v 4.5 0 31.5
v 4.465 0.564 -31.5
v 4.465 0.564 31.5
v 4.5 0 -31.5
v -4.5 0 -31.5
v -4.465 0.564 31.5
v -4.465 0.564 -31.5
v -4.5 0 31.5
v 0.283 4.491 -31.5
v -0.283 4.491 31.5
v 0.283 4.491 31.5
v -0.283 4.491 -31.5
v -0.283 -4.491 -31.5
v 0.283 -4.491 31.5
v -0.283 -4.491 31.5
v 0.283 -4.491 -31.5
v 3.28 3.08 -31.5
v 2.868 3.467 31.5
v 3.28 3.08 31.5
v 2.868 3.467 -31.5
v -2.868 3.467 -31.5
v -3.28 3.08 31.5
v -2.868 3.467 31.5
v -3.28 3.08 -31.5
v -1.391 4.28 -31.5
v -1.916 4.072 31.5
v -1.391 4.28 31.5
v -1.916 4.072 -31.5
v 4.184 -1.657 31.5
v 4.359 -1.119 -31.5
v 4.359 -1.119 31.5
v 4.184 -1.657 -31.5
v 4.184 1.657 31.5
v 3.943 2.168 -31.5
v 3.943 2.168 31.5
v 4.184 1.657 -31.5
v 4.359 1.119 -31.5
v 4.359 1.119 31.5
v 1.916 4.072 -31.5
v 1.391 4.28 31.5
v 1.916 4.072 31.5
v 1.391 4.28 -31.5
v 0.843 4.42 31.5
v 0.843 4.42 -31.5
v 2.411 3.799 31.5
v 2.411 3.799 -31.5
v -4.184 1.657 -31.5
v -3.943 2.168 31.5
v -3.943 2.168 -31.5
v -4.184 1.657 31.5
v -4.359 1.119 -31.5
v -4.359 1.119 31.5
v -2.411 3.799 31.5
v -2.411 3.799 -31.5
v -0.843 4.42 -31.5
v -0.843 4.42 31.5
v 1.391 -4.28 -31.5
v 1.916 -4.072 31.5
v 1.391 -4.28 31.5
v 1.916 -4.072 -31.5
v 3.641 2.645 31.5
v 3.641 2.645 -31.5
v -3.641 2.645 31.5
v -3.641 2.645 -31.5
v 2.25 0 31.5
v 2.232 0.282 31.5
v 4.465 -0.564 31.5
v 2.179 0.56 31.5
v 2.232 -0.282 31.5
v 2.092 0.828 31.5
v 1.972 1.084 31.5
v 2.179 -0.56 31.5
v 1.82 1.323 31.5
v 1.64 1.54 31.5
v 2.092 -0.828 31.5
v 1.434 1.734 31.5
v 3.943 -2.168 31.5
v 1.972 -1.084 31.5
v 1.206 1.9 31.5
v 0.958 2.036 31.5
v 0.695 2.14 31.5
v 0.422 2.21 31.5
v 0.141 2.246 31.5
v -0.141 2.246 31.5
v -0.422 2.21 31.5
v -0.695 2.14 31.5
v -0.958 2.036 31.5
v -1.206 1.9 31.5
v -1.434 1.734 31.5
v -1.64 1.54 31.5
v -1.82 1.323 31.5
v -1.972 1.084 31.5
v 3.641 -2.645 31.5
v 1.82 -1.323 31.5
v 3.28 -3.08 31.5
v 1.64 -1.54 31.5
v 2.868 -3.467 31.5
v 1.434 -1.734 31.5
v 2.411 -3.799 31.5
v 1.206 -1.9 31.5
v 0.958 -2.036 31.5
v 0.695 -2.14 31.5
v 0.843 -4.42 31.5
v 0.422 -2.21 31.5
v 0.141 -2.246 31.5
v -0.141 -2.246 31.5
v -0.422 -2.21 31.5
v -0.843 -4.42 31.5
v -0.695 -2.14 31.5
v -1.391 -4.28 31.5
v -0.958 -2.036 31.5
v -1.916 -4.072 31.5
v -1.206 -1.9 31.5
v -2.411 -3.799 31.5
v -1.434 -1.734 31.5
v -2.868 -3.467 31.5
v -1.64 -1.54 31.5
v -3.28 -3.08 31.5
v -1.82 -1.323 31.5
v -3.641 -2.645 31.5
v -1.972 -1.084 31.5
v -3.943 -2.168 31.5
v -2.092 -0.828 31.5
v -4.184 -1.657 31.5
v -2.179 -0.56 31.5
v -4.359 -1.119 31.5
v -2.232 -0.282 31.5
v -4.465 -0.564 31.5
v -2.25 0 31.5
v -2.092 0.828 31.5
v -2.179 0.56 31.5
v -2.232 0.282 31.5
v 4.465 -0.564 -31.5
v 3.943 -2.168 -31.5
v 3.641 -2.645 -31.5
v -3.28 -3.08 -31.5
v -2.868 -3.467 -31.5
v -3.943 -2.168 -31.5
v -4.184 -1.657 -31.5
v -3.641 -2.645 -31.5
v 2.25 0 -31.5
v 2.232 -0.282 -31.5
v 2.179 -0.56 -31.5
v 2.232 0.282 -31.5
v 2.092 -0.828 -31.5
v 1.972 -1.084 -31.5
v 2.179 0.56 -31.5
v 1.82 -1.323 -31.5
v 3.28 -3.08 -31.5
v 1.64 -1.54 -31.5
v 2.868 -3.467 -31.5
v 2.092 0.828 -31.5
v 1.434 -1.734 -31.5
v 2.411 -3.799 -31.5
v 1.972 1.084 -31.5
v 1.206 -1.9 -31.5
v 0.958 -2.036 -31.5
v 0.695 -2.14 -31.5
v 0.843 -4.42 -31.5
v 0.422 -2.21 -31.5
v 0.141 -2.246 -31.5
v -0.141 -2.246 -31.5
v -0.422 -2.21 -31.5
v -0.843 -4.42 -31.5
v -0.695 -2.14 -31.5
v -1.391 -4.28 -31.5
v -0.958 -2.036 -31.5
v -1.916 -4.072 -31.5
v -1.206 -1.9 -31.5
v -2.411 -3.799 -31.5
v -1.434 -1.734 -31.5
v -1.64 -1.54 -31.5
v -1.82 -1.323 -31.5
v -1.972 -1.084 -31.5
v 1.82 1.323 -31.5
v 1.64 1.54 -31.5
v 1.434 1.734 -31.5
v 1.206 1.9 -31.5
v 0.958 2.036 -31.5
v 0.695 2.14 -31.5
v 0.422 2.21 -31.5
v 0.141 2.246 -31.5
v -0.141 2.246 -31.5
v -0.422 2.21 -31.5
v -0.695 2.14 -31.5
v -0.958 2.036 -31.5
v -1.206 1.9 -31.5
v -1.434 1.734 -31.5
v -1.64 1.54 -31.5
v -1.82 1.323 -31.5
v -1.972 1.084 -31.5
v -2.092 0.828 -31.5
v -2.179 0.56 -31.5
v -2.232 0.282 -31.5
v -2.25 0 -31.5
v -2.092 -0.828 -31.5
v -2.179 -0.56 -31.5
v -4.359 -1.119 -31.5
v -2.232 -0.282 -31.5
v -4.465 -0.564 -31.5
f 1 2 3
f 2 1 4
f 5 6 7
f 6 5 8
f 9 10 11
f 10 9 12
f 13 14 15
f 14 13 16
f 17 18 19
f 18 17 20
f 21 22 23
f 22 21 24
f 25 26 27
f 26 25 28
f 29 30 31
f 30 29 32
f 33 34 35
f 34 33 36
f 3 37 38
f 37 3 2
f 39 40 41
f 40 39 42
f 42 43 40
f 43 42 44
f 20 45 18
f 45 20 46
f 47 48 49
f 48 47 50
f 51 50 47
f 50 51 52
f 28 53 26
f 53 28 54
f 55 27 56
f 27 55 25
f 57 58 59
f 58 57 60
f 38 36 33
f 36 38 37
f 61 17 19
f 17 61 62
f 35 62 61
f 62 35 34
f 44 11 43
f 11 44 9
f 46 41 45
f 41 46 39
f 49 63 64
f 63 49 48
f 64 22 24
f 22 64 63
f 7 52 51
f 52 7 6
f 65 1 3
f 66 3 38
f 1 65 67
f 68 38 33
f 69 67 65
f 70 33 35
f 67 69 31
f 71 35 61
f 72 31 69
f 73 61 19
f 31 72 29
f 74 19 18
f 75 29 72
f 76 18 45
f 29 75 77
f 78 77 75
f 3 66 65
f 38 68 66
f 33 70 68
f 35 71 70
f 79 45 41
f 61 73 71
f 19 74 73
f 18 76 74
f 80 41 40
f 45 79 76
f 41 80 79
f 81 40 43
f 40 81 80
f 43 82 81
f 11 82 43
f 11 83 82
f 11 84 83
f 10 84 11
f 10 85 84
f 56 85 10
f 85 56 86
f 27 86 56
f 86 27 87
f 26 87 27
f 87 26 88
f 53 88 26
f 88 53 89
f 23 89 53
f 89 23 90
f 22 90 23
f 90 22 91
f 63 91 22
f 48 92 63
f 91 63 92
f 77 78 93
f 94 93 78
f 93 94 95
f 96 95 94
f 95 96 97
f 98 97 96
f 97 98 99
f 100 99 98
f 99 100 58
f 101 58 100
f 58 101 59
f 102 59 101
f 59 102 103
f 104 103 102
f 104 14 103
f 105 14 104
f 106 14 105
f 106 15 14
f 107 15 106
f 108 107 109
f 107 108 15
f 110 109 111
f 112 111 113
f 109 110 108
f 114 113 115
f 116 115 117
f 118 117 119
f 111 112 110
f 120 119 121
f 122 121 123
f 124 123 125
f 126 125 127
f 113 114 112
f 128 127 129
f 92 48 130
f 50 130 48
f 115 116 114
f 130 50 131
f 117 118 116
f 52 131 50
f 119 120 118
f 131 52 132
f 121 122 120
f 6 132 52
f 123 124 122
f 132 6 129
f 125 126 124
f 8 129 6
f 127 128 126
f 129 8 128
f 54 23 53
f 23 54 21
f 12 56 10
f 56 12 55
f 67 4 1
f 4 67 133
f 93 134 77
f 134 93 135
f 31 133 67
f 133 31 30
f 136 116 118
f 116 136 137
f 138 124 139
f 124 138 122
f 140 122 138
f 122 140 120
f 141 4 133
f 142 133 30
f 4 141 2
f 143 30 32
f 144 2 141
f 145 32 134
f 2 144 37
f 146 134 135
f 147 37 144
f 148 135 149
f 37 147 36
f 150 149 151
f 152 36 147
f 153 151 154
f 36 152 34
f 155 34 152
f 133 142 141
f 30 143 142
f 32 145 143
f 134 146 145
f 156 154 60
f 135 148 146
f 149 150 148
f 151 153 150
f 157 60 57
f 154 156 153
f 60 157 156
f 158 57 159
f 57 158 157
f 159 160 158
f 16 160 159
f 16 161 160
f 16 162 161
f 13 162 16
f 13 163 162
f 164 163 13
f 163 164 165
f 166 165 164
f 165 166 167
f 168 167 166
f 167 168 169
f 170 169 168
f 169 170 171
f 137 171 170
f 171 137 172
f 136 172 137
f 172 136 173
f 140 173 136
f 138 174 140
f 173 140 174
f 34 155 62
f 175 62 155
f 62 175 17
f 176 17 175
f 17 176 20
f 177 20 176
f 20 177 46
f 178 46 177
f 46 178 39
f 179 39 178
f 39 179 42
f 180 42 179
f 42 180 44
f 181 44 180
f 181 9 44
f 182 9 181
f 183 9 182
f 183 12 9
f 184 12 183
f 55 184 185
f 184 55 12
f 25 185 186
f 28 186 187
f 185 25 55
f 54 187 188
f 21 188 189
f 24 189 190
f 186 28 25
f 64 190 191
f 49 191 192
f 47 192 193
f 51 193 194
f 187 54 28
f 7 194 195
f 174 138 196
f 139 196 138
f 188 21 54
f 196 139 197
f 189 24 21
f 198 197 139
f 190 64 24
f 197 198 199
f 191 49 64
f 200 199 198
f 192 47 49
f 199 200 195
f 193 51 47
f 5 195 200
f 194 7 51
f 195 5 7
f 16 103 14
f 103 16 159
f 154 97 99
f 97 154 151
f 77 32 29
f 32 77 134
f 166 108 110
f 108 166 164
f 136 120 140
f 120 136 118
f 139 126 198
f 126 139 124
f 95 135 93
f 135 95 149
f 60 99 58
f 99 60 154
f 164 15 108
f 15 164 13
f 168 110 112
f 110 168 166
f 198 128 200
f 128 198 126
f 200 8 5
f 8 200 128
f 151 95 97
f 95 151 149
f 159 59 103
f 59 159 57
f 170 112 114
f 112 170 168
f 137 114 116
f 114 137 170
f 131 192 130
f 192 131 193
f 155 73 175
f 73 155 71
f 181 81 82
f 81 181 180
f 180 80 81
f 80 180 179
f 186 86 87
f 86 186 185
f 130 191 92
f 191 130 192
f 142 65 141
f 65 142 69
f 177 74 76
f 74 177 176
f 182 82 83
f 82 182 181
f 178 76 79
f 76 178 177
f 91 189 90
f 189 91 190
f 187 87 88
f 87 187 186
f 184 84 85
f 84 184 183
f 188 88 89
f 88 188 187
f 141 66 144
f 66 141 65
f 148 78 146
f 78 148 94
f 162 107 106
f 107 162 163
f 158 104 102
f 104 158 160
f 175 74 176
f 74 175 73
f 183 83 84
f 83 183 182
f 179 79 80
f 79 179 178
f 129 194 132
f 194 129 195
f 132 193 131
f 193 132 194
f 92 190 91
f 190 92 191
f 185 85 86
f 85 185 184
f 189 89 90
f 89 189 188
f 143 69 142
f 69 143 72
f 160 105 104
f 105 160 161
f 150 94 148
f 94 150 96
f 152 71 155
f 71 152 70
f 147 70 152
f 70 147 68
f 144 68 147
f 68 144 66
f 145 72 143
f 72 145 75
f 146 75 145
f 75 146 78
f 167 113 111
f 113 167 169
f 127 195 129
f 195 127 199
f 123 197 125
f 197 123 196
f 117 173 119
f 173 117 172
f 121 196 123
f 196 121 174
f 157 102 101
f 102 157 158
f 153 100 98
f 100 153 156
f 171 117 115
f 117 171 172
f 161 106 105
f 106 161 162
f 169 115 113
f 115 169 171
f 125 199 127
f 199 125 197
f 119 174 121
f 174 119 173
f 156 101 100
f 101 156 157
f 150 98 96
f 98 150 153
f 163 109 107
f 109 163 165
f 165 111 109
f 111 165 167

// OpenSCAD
$fn = 50;


difference() {
	union() {
		translate(v = [0, 0, -31.5000000000]) {
			cylinder(h = 63, r = 4.5000000000);
		}
	}
	union() {
		translate(v = [0, 0, -100.0000000000]) {
			cylinder(h = 200, r = 2.2500000000);
		}
	}
}
